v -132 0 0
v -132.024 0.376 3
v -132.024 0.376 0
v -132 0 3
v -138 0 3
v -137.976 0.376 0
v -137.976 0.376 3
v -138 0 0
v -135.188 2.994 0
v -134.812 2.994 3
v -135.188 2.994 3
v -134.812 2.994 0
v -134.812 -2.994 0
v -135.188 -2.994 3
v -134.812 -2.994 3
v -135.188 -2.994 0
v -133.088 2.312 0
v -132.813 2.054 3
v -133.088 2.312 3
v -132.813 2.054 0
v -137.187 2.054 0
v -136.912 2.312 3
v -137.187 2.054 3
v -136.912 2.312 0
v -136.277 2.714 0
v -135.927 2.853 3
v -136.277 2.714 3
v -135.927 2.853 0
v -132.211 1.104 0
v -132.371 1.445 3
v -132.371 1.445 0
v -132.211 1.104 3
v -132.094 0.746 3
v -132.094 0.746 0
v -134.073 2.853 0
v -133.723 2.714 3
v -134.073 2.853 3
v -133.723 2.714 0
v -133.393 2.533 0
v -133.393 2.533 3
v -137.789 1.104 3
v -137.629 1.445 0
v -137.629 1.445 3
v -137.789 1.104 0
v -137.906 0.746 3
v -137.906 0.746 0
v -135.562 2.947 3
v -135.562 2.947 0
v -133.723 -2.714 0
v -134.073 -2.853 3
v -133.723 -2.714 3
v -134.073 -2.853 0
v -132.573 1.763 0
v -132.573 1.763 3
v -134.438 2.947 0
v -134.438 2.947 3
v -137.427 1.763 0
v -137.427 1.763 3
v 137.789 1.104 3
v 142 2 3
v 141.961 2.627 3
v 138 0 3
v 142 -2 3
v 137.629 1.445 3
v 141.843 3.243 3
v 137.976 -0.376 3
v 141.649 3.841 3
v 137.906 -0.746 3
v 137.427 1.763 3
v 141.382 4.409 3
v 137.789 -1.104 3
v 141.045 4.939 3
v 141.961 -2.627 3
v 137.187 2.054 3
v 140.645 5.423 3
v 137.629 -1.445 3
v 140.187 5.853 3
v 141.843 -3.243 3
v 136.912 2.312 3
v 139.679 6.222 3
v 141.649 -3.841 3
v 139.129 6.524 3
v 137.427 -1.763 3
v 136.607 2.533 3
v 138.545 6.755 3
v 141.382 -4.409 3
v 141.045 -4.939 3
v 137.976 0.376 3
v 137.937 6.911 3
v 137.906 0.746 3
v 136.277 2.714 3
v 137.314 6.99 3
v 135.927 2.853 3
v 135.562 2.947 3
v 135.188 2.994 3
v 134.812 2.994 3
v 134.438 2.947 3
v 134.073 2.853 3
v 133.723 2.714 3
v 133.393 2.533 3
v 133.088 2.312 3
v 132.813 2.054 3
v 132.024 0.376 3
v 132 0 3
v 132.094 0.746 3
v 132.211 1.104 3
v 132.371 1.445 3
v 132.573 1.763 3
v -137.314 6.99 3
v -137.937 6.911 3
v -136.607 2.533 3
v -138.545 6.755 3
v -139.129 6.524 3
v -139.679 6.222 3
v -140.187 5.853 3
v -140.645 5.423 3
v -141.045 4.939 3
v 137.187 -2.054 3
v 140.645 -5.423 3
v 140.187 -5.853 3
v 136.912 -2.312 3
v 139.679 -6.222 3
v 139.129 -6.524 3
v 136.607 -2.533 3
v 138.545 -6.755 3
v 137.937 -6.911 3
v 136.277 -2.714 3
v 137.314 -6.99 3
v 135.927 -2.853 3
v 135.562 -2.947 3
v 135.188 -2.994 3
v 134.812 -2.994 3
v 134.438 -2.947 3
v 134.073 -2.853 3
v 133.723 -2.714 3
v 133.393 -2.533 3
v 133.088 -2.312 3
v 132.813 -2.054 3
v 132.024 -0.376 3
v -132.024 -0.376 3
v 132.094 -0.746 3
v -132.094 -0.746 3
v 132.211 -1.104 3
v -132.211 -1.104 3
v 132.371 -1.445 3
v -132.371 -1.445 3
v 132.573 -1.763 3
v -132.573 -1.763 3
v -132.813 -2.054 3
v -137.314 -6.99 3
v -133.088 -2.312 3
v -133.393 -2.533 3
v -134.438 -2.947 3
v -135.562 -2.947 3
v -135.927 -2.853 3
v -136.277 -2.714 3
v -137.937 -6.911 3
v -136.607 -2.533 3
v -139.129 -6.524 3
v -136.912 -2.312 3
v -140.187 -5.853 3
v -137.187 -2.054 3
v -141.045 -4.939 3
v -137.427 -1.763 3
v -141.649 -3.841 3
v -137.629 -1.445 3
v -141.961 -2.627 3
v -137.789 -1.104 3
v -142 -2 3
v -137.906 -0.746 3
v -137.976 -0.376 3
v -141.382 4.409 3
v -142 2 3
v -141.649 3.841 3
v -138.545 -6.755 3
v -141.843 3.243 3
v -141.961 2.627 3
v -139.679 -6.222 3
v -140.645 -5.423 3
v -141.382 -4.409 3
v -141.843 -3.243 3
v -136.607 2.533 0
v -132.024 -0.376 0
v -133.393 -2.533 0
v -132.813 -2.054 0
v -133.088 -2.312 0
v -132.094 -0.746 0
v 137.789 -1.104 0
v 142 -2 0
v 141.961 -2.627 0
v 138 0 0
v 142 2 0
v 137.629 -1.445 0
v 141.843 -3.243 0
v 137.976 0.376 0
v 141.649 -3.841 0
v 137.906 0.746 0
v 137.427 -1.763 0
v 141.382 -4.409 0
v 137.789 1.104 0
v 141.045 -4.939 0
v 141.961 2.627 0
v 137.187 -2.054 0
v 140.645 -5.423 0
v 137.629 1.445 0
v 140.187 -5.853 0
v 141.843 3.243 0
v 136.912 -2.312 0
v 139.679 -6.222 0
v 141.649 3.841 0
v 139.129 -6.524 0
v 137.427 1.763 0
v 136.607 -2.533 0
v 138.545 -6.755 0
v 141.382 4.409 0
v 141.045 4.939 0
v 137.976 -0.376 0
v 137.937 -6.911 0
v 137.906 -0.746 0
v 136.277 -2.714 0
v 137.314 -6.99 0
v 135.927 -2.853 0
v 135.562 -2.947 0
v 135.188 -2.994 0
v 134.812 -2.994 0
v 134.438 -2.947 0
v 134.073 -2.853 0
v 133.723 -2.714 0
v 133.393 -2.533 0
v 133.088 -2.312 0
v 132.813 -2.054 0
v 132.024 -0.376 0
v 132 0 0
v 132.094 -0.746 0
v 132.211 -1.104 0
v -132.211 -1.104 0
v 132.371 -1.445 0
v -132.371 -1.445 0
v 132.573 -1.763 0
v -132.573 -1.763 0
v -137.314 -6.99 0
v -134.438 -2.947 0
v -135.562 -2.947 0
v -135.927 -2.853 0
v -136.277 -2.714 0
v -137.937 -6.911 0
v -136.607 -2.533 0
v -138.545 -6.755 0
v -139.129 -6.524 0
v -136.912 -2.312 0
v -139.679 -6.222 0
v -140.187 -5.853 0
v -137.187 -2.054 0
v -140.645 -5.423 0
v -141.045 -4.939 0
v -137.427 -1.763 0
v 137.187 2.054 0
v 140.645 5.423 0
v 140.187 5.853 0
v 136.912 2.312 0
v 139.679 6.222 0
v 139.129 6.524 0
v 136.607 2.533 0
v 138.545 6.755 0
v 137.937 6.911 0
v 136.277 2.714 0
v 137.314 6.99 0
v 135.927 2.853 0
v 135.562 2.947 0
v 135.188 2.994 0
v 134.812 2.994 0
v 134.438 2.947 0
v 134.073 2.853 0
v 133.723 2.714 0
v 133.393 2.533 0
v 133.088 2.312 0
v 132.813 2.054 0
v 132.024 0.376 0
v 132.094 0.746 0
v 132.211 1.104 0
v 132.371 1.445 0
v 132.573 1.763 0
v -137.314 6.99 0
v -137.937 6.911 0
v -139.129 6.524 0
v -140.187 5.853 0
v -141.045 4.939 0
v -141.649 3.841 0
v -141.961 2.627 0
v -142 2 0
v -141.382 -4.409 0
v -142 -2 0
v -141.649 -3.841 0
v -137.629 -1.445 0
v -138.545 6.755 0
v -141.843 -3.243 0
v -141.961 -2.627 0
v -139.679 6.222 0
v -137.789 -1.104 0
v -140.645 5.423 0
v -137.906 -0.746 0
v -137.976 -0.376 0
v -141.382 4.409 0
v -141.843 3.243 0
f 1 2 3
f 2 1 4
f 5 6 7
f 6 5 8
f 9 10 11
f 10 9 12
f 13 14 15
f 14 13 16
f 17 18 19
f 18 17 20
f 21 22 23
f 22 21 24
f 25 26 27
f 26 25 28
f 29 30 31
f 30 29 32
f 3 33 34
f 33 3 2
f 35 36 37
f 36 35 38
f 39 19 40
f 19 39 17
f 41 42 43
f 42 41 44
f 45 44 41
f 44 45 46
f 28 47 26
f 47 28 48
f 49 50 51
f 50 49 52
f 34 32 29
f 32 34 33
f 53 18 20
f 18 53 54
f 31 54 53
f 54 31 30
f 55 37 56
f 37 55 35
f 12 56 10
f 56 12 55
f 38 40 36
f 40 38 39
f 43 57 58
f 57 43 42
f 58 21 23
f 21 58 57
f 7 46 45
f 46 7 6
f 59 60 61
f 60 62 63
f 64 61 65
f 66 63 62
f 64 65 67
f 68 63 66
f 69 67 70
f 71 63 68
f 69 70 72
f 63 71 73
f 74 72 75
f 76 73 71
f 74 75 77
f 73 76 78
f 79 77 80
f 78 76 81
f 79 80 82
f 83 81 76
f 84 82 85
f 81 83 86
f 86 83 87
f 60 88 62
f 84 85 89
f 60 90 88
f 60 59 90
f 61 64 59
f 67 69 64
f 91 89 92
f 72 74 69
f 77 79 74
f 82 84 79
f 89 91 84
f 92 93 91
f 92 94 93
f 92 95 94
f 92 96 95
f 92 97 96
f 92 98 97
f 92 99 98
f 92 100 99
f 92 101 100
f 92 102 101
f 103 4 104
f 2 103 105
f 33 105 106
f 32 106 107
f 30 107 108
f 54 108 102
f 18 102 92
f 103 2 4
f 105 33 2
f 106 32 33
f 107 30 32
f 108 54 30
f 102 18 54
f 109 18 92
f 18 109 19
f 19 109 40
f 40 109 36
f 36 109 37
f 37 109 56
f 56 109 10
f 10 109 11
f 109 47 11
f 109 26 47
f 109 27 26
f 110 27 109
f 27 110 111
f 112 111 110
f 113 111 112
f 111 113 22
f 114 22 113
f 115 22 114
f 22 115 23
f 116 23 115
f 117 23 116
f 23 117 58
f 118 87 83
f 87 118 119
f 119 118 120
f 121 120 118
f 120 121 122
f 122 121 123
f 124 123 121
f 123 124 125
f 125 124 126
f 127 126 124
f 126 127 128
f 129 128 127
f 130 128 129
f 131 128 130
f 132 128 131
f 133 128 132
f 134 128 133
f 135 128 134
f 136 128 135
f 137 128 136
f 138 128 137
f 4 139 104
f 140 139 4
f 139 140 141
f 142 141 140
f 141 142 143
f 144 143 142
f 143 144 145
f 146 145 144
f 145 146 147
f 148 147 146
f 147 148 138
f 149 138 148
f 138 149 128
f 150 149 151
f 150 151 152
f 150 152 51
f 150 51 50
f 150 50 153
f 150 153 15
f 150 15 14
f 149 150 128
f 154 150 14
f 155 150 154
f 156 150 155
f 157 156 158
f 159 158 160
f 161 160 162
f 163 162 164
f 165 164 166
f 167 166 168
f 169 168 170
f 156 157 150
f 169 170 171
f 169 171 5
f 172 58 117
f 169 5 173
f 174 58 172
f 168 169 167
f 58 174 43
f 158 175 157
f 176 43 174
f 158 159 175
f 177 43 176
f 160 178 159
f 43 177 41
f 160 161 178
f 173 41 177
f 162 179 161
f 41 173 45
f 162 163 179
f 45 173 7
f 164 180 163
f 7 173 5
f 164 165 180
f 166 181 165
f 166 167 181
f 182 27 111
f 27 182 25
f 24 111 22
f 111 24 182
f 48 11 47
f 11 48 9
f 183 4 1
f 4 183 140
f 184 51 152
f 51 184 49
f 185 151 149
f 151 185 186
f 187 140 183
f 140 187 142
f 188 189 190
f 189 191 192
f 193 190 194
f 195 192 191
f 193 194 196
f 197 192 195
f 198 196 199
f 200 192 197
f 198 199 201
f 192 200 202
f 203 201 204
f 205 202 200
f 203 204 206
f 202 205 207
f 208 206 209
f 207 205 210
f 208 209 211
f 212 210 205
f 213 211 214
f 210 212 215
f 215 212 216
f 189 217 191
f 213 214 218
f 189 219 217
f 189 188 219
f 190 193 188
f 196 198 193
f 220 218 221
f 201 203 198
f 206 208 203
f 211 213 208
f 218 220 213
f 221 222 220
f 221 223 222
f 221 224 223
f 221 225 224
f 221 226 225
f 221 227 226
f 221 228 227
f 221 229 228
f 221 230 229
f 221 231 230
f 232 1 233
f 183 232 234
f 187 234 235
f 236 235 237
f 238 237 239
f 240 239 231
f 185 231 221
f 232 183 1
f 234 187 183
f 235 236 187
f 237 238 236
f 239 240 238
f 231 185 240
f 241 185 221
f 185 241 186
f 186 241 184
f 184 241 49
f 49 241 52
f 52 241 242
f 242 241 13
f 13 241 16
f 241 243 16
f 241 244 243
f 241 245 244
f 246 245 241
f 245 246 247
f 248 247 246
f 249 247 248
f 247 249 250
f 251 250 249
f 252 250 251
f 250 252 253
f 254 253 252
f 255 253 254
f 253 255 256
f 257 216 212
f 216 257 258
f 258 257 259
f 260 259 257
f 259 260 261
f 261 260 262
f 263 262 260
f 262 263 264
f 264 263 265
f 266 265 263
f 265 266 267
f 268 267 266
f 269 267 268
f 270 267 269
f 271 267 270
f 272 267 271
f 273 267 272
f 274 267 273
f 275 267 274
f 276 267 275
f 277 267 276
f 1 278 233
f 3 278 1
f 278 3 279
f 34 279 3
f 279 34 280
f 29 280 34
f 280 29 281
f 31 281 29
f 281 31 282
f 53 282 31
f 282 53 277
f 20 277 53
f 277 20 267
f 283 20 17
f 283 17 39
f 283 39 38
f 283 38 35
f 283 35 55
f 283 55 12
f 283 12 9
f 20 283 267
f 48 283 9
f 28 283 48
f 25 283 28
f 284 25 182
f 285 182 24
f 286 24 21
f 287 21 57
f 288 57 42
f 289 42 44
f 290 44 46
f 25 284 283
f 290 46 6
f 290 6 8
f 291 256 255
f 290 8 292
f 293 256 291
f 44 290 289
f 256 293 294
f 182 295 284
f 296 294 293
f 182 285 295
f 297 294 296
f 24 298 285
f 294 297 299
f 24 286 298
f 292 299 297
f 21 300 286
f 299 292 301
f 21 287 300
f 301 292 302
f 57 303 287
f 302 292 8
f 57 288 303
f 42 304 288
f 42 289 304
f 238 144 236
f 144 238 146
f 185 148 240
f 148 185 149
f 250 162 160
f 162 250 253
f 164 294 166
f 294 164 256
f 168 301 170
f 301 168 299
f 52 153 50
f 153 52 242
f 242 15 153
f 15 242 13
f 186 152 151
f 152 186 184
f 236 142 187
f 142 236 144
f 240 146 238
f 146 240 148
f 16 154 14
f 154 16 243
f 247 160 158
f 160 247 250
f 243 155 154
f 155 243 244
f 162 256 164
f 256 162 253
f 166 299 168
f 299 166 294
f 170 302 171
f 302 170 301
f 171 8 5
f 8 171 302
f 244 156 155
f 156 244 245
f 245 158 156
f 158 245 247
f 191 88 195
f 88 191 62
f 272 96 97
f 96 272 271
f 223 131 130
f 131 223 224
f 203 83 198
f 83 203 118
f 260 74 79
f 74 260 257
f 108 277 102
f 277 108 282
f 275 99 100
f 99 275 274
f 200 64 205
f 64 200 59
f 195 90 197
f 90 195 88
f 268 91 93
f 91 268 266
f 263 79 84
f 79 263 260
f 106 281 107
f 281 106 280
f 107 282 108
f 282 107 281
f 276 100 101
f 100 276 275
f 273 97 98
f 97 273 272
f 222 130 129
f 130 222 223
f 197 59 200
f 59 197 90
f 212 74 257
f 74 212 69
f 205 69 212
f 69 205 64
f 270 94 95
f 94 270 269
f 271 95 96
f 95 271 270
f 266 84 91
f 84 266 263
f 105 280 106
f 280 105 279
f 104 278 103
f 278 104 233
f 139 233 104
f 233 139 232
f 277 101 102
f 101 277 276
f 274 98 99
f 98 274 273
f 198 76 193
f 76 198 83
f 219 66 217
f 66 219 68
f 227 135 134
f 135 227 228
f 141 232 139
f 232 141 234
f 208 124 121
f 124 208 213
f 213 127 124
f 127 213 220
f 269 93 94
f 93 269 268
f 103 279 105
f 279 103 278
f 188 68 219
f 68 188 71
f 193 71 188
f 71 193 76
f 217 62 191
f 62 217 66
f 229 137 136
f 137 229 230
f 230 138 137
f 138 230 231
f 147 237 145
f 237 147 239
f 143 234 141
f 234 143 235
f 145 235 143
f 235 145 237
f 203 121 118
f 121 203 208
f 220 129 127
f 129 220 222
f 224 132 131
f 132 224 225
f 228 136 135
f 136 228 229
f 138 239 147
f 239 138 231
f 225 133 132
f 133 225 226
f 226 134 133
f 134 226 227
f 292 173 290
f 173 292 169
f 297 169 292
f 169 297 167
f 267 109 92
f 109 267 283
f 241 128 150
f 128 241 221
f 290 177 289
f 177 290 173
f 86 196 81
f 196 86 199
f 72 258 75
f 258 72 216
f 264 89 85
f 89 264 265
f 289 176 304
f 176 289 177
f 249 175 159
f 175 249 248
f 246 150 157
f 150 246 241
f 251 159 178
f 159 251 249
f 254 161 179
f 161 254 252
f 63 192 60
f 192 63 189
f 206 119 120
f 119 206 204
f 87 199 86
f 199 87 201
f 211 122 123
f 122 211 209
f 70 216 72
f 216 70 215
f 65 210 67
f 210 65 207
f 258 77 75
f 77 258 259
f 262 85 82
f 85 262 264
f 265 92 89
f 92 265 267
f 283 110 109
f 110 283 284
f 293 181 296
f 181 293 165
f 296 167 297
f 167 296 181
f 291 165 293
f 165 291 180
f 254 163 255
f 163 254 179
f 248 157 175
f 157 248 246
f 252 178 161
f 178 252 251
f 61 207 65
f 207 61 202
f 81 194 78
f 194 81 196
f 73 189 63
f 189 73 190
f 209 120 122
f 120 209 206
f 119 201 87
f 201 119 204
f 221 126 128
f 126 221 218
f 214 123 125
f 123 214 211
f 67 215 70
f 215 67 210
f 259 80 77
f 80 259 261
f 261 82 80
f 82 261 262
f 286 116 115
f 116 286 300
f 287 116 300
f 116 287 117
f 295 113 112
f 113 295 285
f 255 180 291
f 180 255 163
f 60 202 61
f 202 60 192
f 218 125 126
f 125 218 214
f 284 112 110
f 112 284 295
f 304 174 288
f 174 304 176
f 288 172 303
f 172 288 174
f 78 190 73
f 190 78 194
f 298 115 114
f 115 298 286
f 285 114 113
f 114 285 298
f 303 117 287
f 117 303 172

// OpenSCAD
$fn = 50;


difference() {
	union() {
		hull() {
			translate(v = [-137.0000000000, 2.0000000000, 0]) {
				cylinder(h = 3, r = 5);
			}
			translate(v = [137.0000000000, 2.0000000000, 0]) {
				cylinder(h = 3, r = 5);
			}
			translate(v = [-137.0000000000, -2.0000000000, 0]) {
				cylinder(h = 3, r = 5);
			}
			translate(v = [137.0000000000, -2.0000000000, 0]) {
				cylinder(h = 3, r = 5);
			}
		}
	}
	union() {
		translate(v = [-135.0000000000, 0.0000000000, 0]) {
			cylinder(h = 3, r = 3.0000000000);
		}
		translate(v = [135.0000000000, 0.0000000000, 0]) {
			cylinder(h = 3, r = 3.0000000000);
		}
		translate(v = [-135.0000000000, 0.0000000000, 0]) {
			cylinder(h = 3, r = 1.5000000000);
		}
		translate(v = [135.0000000000, 0.0000000000, 0]) {
			cylinder(h = 3, r = 1.5000000000);
		}
		translate(v = [-135.0000000000, 0.0000000000, 0]) {
			cylinder(h = 3, r = 1.5000000000);
		}
		translate(v = [135.0000000000, 0.0000000000, 0]) {
			cylinder(h = 3, r = 1.5000000000);
		}
		translate(v = [-135.0000000000, 0.0000000000, 0]) {
			cylinder(h = 3, r = 1.5000000000);
		}
		translate(v = [135.0000000000, 0.0000000000, 0]) {
			cylinder(h = 3, r = 1.5000000000);
		}
	}
}
